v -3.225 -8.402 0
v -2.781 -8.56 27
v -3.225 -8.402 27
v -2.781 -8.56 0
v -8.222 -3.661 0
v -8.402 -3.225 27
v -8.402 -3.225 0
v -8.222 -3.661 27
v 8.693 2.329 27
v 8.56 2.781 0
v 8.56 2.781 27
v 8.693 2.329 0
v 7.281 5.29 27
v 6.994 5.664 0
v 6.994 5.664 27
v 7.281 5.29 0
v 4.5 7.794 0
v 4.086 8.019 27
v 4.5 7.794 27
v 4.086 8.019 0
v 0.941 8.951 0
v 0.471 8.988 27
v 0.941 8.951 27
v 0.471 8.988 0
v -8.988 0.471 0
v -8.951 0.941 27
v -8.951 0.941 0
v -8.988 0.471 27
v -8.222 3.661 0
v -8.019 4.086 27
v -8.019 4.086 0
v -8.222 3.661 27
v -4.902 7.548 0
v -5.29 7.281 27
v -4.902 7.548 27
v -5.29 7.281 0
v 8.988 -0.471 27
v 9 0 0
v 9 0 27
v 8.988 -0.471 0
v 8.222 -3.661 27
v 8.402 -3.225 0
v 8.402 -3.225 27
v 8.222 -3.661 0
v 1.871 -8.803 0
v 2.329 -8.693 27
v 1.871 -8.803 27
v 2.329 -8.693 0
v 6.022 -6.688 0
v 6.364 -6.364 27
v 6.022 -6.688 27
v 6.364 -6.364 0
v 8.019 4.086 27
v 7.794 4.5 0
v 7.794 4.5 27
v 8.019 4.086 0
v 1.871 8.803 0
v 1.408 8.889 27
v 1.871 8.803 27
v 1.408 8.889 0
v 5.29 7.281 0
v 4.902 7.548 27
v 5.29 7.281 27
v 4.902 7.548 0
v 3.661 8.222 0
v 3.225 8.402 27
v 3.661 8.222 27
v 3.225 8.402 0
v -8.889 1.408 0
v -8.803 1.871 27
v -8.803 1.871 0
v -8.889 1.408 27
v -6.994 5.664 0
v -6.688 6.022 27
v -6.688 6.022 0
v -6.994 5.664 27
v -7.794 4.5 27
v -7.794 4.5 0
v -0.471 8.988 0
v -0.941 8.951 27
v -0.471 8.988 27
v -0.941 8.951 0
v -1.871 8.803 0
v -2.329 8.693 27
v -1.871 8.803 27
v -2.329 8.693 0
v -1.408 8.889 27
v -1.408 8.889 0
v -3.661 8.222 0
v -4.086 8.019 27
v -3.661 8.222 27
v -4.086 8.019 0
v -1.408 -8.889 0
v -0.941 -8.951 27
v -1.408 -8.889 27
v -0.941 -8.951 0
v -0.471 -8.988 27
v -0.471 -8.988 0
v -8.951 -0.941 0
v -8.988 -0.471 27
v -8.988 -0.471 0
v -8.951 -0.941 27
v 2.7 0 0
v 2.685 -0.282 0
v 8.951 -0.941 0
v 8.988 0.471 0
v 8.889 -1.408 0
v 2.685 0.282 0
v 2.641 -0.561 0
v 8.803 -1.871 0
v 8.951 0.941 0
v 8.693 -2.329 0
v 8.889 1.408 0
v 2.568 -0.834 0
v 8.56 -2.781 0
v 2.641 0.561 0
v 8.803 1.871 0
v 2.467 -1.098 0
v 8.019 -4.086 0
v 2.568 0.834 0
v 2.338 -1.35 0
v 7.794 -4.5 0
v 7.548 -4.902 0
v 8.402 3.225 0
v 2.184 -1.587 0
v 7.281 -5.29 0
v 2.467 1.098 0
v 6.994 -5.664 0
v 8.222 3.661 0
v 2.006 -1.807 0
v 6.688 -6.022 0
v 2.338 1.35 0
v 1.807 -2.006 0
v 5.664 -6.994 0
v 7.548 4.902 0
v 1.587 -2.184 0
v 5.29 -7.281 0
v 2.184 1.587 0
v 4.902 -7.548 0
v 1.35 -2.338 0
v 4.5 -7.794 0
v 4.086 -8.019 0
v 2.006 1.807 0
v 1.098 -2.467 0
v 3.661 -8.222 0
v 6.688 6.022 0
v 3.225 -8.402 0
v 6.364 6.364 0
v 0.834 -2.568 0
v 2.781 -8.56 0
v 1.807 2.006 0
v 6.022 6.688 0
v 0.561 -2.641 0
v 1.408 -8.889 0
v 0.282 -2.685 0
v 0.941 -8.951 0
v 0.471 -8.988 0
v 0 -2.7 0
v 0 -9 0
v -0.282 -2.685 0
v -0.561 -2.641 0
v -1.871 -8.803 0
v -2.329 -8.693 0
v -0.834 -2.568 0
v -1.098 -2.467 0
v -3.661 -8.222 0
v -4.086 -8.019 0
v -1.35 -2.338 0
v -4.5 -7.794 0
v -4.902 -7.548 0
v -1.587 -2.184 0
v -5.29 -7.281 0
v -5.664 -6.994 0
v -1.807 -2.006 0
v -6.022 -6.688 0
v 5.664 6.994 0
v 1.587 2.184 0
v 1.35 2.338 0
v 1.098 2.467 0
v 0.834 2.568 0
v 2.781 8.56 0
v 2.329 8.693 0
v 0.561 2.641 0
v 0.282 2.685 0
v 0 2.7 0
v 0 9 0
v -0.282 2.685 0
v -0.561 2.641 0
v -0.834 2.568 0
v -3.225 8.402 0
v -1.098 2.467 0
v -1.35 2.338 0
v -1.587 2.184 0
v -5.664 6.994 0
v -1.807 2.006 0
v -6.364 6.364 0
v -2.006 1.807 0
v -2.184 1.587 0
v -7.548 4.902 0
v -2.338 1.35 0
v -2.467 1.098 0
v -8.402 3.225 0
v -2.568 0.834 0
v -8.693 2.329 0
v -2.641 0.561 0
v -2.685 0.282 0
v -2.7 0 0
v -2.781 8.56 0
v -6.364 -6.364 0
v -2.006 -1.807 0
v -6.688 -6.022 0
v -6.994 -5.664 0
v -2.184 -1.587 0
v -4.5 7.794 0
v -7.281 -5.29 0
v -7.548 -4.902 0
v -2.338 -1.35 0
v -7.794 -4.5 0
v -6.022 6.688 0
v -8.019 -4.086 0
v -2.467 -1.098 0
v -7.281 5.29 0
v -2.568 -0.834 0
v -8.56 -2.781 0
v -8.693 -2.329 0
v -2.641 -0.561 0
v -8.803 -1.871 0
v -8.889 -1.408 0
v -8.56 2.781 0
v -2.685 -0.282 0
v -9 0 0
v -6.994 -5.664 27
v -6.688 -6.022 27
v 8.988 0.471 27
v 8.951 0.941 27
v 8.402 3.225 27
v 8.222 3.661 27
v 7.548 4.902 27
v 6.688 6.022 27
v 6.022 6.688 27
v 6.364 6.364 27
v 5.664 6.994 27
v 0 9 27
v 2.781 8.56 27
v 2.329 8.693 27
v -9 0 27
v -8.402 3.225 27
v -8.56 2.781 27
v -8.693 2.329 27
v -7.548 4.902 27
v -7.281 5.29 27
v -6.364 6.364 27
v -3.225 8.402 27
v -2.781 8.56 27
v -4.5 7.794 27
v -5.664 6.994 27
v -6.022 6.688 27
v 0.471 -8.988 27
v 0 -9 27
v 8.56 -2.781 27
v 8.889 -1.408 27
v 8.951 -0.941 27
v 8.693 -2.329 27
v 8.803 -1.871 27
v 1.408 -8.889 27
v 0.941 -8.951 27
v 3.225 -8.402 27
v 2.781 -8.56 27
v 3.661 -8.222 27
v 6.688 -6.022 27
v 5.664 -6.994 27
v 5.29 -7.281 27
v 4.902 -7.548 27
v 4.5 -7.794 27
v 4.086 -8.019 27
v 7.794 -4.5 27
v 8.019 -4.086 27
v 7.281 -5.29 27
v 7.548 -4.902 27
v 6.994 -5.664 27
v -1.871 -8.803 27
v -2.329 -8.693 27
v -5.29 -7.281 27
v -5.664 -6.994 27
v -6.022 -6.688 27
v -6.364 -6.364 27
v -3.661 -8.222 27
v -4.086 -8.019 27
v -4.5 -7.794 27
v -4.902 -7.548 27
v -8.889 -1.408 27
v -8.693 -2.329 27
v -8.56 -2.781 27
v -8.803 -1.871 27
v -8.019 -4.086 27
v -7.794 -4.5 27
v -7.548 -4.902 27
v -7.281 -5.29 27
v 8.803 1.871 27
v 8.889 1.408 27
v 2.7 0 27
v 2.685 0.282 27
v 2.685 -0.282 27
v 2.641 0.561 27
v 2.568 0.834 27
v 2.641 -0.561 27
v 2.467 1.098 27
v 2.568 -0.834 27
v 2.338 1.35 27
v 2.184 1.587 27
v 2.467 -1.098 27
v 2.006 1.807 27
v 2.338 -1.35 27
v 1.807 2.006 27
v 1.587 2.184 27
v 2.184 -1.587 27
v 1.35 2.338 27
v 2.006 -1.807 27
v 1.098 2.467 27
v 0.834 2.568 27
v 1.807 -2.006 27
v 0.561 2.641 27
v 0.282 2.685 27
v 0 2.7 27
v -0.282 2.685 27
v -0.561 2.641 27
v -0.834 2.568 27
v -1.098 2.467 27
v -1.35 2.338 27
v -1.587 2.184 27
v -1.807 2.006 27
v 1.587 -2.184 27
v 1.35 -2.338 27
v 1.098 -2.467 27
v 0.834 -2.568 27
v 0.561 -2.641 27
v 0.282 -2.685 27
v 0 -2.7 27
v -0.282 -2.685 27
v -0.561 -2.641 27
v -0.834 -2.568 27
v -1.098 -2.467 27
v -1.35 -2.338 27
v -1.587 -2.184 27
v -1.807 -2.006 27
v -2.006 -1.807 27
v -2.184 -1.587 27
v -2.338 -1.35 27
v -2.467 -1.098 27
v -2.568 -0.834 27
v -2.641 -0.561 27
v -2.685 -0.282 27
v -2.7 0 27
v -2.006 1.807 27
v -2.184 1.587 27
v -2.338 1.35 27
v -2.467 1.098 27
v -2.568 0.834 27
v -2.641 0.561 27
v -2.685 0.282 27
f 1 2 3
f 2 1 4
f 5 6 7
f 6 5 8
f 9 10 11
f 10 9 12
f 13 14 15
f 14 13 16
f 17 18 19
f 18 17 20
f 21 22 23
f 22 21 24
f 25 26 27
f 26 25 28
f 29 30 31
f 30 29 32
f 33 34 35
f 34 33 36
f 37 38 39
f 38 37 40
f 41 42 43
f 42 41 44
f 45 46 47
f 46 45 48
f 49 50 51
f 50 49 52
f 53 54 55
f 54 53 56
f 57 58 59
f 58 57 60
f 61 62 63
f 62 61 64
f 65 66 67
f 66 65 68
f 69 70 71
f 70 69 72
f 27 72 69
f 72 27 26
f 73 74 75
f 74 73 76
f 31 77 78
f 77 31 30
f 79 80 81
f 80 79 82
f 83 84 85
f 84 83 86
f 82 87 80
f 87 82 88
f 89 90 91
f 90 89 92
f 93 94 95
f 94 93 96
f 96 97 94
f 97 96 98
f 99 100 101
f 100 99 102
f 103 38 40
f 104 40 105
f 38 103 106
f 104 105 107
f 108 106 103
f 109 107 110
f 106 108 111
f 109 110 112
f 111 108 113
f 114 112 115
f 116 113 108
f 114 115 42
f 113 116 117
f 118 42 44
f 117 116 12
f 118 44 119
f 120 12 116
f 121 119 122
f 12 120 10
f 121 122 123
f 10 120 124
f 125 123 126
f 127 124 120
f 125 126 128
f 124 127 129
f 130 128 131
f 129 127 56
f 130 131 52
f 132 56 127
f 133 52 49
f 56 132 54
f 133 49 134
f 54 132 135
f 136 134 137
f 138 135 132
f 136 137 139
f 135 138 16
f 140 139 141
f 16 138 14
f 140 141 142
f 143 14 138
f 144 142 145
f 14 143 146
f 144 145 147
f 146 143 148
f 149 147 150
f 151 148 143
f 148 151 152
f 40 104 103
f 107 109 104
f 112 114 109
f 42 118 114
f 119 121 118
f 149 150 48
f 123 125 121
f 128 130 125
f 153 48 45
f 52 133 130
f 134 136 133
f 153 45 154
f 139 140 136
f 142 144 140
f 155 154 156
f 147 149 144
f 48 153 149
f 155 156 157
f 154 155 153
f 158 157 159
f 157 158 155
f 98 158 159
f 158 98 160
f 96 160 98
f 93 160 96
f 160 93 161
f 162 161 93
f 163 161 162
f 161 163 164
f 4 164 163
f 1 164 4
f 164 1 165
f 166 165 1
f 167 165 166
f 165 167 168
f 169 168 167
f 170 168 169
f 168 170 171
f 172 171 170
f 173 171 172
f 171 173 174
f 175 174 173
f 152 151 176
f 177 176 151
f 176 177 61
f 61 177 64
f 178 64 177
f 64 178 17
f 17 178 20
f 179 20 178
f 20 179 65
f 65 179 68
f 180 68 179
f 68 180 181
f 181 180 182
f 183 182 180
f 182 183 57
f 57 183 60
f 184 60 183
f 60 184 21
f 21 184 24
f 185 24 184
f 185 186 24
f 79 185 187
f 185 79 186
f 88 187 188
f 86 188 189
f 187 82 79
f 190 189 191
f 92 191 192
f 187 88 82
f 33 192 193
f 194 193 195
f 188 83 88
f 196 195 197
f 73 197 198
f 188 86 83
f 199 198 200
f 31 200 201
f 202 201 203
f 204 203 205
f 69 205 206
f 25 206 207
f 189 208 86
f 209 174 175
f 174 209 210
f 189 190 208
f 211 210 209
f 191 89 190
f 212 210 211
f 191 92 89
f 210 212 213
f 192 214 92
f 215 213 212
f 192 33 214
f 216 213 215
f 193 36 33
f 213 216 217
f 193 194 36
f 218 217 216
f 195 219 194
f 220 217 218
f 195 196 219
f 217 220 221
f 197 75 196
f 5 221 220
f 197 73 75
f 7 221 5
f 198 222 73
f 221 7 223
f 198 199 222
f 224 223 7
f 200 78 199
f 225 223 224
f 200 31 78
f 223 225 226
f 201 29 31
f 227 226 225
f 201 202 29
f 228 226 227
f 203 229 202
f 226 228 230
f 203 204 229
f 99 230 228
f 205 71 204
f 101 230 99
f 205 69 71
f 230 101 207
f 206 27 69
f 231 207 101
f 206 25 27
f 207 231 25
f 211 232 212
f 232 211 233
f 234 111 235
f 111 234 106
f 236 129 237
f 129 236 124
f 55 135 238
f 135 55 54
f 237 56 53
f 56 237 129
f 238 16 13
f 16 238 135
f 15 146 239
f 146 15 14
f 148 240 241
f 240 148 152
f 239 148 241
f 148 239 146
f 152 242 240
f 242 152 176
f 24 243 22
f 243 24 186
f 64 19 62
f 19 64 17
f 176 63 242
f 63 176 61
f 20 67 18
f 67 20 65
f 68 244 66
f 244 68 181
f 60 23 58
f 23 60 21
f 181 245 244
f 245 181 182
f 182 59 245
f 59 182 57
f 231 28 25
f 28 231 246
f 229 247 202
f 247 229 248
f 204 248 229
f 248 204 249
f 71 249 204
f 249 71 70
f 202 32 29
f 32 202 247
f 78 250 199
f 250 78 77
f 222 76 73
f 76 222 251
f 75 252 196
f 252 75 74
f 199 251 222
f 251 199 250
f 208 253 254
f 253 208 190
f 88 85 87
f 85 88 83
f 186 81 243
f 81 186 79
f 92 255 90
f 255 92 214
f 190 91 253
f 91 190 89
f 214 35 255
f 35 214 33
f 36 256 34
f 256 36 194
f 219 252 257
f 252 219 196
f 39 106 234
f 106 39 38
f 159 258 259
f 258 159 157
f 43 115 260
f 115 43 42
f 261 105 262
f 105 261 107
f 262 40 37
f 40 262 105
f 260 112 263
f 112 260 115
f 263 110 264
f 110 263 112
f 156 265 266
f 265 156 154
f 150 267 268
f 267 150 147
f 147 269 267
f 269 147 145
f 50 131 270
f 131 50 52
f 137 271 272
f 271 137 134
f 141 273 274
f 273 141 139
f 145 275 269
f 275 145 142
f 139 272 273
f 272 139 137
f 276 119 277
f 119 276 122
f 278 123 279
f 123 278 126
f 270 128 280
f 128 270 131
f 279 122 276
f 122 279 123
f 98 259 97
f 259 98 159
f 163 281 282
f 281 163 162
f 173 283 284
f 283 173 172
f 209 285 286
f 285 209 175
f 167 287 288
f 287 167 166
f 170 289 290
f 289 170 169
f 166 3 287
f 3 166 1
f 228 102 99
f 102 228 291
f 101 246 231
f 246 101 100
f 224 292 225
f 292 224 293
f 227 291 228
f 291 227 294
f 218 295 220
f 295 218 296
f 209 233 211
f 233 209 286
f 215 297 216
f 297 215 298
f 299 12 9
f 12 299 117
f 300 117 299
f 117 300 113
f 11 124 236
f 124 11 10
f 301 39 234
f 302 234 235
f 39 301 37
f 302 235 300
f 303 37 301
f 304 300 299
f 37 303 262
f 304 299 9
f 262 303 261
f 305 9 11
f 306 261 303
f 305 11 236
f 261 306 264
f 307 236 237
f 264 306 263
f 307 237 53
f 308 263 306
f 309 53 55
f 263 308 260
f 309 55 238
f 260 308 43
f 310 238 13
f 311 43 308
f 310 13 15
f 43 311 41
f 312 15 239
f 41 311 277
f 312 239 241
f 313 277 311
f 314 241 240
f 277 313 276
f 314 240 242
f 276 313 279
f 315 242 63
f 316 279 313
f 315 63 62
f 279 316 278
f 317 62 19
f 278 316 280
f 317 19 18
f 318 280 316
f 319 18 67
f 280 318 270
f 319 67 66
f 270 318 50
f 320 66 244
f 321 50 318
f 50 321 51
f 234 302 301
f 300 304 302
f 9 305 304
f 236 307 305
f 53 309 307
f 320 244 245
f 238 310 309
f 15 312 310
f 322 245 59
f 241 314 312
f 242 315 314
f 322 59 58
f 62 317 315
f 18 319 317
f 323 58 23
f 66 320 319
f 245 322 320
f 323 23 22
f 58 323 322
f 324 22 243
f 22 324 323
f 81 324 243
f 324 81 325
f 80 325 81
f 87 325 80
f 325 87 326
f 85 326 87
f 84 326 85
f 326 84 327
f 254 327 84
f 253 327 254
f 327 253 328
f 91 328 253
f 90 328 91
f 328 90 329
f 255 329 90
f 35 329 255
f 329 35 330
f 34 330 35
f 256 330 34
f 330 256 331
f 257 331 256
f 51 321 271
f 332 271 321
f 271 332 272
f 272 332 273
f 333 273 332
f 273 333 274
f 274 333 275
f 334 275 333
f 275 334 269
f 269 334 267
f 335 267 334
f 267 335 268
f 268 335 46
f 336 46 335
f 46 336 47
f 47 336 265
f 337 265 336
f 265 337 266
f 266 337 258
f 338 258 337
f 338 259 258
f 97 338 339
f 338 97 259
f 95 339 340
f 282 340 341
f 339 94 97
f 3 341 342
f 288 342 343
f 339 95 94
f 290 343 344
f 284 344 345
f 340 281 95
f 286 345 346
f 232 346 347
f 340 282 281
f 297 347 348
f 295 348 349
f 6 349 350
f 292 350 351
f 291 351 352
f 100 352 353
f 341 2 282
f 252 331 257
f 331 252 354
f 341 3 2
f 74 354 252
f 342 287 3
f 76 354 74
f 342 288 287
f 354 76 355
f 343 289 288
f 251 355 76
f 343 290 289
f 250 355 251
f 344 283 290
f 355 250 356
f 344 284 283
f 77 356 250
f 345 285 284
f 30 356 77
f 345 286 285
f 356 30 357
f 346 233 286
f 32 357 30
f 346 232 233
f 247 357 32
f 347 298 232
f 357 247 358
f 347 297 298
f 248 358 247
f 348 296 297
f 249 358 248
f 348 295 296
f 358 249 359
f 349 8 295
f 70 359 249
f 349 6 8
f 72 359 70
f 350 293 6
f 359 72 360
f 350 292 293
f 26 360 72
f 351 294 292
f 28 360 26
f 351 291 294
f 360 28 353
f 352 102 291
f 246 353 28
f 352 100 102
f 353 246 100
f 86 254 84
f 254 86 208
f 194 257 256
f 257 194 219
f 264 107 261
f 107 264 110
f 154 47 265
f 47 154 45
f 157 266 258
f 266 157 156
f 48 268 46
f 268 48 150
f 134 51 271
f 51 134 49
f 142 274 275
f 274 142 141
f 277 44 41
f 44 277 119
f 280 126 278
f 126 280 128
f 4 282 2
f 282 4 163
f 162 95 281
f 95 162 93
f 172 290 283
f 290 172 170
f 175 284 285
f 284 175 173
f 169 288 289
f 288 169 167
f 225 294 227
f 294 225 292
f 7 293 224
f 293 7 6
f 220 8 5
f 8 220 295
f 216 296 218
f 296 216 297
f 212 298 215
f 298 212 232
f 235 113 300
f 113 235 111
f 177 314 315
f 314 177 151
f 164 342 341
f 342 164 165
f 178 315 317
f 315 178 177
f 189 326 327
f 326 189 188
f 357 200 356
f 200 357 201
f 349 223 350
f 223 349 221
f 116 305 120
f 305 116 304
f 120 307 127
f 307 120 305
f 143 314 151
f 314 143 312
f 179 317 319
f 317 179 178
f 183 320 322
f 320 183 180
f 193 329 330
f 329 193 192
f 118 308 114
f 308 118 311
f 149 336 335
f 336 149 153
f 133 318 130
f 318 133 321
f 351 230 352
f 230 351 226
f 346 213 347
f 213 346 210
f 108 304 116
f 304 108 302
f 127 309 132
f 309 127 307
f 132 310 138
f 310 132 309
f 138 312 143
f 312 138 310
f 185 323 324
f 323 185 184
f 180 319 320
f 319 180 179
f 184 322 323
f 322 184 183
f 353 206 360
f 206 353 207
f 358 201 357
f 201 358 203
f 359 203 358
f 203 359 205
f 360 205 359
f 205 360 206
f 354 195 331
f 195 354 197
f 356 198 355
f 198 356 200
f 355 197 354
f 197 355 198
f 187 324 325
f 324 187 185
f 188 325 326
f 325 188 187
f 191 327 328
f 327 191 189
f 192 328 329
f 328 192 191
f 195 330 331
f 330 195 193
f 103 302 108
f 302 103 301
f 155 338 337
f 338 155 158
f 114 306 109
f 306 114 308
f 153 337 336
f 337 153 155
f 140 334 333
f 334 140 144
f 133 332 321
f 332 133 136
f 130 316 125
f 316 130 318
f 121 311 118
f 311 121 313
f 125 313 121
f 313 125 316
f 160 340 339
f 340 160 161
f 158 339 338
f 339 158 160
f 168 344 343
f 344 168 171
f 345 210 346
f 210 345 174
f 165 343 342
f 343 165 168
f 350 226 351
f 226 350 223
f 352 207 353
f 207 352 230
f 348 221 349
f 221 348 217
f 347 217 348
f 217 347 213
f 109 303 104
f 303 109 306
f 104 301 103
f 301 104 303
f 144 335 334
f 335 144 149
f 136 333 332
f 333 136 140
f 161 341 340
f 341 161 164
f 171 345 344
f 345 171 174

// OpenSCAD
seatPostRadius = 27;
boltDiameter = 5 + 0.4;
spacerDiameter = 18;

difference()
{
cylinder(h=seatPostRadius, d=spacerDiameter, $fn = 120);
translate([0,0,-10]) cylinder(h=seatPostRadius + 20, d=boltDiameter, $fn = 60);
}
